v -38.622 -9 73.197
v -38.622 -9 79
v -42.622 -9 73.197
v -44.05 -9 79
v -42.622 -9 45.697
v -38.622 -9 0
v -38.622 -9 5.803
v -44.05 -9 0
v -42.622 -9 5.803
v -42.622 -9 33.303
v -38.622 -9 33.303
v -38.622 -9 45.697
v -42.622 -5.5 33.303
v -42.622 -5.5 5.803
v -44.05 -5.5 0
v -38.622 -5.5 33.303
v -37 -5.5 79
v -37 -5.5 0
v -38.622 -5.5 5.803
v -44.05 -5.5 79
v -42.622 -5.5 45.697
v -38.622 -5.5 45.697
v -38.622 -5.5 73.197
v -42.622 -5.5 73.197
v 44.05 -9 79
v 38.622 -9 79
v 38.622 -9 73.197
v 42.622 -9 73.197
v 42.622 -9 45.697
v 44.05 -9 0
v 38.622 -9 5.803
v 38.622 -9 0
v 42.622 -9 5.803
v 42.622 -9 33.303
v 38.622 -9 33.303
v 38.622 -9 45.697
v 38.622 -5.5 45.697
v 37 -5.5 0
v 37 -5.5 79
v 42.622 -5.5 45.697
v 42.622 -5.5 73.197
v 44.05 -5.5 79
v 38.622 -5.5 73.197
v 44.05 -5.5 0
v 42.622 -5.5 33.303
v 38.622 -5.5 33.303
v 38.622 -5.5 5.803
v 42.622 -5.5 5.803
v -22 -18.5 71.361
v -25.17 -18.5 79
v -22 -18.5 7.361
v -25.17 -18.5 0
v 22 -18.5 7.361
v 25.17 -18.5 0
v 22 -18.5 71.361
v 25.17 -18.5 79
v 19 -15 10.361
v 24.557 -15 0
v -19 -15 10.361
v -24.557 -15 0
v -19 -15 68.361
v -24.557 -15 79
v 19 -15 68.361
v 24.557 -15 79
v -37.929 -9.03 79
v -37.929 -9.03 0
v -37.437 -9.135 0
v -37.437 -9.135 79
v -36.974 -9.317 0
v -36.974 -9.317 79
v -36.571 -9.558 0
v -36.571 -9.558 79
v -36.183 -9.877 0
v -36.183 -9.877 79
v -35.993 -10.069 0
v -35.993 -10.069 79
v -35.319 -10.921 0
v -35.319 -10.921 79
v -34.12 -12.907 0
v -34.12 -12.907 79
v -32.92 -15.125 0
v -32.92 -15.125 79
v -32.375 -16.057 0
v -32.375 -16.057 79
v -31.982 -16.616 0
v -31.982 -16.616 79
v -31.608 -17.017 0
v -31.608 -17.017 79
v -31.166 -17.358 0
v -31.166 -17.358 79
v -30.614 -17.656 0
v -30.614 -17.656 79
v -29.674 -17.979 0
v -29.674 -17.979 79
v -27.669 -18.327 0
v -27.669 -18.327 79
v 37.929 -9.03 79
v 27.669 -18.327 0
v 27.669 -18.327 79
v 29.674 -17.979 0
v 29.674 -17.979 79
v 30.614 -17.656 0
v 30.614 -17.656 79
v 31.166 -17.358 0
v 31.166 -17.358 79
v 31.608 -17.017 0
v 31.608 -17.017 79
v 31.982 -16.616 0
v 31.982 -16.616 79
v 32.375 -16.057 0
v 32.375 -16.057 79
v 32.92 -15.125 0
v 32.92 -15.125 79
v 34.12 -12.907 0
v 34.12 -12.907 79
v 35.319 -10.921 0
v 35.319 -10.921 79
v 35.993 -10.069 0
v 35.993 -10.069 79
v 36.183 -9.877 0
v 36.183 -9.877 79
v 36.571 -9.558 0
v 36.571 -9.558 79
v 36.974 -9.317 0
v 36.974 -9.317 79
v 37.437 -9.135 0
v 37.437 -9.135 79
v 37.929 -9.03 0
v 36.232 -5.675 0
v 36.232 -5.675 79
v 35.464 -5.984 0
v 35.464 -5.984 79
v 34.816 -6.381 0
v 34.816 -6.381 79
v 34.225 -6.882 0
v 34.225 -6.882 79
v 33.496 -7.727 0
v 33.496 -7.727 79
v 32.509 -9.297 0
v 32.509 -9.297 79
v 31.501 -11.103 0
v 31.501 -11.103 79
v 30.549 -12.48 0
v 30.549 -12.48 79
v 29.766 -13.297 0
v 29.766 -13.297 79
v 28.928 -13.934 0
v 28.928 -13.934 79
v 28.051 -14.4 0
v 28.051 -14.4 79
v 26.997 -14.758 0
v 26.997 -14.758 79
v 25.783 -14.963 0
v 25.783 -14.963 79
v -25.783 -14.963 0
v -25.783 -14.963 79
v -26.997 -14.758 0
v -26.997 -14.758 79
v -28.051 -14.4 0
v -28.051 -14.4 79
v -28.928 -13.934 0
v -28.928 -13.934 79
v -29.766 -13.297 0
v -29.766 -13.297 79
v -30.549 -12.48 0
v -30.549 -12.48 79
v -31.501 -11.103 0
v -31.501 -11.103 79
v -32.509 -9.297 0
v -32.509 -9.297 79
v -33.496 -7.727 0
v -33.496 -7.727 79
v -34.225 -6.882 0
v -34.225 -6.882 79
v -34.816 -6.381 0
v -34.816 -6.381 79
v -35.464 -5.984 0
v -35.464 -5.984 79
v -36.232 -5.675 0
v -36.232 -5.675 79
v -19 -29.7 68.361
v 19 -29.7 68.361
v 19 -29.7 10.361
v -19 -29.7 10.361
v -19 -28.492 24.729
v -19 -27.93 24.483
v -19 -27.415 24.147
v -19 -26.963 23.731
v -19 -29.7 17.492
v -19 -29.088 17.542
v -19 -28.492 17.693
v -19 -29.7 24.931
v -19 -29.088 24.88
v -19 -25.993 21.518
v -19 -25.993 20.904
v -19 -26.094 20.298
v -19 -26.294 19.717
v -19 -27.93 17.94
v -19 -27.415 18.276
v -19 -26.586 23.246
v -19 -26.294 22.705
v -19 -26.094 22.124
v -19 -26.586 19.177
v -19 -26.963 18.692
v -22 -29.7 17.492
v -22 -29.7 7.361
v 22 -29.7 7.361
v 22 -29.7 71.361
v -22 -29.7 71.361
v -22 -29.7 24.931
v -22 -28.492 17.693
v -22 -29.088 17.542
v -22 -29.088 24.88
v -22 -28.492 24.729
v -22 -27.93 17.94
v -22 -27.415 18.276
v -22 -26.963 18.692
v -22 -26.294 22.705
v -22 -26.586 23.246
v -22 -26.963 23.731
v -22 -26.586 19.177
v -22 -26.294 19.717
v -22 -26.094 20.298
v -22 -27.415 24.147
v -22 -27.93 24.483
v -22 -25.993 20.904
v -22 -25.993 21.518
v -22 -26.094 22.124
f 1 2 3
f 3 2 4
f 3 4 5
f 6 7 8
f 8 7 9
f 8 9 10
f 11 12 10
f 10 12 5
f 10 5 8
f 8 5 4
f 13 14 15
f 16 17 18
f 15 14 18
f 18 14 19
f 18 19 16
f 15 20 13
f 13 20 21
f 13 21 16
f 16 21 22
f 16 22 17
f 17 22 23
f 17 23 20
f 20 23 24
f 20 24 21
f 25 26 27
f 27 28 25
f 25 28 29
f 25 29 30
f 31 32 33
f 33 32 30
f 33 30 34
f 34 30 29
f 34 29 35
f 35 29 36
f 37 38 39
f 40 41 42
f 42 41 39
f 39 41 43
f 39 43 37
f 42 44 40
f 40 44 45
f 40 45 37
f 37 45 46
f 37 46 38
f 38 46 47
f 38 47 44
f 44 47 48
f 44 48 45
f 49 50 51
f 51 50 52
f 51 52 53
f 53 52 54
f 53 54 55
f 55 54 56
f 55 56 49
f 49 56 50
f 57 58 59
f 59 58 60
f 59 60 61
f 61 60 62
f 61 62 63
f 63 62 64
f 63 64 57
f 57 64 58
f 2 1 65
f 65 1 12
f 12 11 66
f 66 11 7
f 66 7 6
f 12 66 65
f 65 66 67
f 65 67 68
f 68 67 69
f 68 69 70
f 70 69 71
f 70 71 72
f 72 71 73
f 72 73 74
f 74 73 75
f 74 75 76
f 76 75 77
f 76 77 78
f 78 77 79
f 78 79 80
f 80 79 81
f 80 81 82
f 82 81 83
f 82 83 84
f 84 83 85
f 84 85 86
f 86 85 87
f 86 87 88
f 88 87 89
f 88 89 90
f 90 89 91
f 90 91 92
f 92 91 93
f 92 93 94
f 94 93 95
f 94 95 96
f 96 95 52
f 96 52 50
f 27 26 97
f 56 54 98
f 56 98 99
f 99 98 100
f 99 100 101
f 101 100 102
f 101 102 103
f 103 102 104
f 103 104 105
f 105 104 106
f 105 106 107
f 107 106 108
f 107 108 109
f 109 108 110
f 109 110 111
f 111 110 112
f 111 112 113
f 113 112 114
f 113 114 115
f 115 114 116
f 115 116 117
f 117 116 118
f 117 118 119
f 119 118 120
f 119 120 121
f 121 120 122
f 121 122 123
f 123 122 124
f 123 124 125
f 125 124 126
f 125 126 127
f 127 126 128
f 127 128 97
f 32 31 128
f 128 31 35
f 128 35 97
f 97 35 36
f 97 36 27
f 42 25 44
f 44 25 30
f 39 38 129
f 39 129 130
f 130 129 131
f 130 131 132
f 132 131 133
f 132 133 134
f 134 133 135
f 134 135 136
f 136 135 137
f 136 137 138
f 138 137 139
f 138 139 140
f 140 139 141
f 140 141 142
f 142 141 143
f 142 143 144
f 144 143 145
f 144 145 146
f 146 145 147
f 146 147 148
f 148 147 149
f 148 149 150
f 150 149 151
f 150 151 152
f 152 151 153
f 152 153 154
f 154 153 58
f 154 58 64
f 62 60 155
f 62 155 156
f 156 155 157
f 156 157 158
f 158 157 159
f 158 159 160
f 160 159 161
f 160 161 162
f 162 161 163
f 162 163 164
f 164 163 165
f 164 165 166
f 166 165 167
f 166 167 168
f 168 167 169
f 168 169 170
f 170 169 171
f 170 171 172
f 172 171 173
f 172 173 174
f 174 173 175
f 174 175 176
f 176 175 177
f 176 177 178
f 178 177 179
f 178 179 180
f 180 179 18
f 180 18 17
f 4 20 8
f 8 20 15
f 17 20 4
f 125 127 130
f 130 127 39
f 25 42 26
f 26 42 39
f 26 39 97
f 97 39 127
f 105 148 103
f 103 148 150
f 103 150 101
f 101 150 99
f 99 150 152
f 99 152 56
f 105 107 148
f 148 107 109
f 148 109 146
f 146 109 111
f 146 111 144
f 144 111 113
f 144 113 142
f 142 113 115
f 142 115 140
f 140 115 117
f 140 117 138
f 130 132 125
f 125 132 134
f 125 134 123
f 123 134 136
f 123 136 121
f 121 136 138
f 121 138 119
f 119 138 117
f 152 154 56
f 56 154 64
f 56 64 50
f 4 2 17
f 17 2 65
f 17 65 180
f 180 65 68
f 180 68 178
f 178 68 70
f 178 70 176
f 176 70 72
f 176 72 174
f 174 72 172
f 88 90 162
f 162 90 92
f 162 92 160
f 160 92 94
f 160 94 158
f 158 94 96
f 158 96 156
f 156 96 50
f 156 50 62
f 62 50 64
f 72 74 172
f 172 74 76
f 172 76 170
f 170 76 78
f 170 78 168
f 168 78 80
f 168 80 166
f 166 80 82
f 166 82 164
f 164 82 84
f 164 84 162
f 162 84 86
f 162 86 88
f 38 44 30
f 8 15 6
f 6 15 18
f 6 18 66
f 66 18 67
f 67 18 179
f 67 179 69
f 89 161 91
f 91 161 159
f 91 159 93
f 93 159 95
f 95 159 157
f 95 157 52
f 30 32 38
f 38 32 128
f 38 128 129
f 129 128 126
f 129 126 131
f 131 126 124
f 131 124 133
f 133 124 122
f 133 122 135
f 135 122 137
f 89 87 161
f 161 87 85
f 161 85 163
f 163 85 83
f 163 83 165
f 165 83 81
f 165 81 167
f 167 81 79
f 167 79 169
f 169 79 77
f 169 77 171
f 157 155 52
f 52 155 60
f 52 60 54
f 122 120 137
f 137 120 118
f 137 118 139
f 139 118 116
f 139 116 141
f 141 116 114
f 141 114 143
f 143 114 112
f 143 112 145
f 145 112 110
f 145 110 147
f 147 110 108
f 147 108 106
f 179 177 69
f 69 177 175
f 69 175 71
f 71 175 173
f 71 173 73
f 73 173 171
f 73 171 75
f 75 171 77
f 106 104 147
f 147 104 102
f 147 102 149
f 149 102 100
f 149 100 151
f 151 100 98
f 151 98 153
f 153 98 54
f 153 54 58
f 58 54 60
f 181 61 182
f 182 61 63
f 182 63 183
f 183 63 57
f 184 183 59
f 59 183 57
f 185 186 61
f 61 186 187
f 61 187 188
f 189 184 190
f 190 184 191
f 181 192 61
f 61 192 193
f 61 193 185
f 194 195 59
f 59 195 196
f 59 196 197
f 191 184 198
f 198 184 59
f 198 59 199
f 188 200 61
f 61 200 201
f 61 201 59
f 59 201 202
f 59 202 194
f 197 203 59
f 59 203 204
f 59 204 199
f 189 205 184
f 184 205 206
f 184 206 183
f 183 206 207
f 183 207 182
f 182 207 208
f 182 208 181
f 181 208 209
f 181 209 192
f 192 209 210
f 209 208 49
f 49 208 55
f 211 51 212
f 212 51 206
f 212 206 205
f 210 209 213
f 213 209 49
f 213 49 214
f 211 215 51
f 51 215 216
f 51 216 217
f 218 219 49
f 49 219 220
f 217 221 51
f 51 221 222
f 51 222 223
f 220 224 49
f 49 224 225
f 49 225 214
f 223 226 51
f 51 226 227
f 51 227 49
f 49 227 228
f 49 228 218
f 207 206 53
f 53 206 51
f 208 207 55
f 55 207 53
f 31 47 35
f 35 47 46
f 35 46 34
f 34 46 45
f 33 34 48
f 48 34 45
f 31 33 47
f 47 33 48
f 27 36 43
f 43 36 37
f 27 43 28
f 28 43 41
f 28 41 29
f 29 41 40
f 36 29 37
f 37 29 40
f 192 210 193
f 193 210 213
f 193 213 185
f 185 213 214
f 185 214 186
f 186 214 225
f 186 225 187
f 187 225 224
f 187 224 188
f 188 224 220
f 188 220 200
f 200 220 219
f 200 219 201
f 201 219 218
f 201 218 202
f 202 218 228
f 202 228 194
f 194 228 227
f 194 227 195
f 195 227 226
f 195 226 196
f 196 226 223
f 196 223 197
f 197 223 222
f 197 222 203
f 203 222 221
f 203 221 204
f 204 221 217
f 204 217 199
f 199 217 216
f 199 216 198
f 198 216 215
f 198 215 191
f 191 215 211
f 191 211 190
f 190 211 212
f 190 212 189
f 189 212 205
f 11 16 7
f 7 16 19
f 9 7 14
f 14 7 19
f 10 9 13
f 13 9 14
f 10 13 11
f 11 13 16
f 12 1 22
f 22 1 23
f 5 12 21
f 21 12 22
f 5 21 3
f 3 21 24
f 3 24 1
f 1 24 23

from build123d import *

# Parameters (mm, degrees)
BOSS_EXTRUDE1_DEPTH = 79
SKETCH2_W           = 38
SKETCH2_H           = 58
CUT_EXTRUDE1_DEPTH  = 79
SKETCH2_4_W         = 44
SKETCH2_4_H         = 64
SKETCH2_4_W_2       = 38
SKETCH2_4_H_2       = 58
BOSS_EXTRUDE2_DEPTH = 11.2
SKETCH3_W           = 4
SKETCH3_H           = 27.5
CUT_EXTRUDE2_DEPTH  = 11.2
SKETCH4_R           = 3.719736595
CUT_EXTRUDE3_DEPTH  = 11.2


with BuildPart() as part:
    # Sketch1 → Boss-Extrude1 (new body)
    with BuildSketch(Plane.XY):
        with BuildLine():
            add(Edge.make_bspline(
                [(-24.556789143, -15), (-27.745261791, -15.088777555), (-32.116523574, -12.134311448), (-33.438353398, -6.048030585), (-37, -5.5)],
                knots=[0.971548373, 0.971548373, 0.971548373, 0.971548373, 1.403552773, 1.971548373, 1.971548373, 1.971548373, 1.971548373], degree=3))
            Line((-37, -5.5), (-44.050427966, -5.5))
            Line((-44.050427966, -5.5), (-44.050427966, -9))
            Line((-44.050427966, -9), (-38.622212975, -9))
            add(Edge.make_bspline(
                [(-38.622212975, -9), (-37.013577383, -8.940166603), (-35.066707272, -10.728314314), (-32.367433587, -16.596409153), (-30.698617033, -18.287184956), (-25.17005526, -18.5)],
                knots=[0, 0, 0, 0, 0.269469322, 0.622038388, 1, 1, 1, 1], degree=3))
            Line((-25.17005526, -18.5), (25.17005526, -18.5))
            add(Edge.make_bspline(
                [(38.622212975, -9), (37.013577383, -8.940166603), (35.066707272, -10.728314314), (32.367433587, -16.596409153), (30.698617033, -18.287184956), (25.17005526, -18.5)],
                knots=[0, 0, 0, 0, 0.269469322, 0.622038388, 1, 1, 1, 1], degree=3))
            Line((38.622212975, -9), (44.050427966, -9))
            Line((44.050427966, -9), (44.050427966, -5.5))
            Line((44.050427966, -5.5), (37, -5.5))
            add(Edge.make_bspline(
                [(37, -5.5), (33.438353398, -6.048030585), (32.116523574, -12.134311448), (27.745261791, -15.088777555), (24.556789143, -15)],
                knots=[0, 0, 0, 0, 0.5679956, 1, 1, 1, 1], degree=3))
            Line((24.556789143, -15), (-24.556789143, -15))
        make_face()
    extrude(amount=BOSS_EXTRUDE1_DEPTH)

    # Sketch2 → Cut-Extrude1 (cut)
    with BuildSketch(Plane.XZ.offset(18.5)):
        with Locations((0, 39.360513879)):
            Rectangle(SKETCH2_W, SKETCH2_H)
    extrude(amount=-CUT_EXTRUDE1_DEPTH, mode=Mode.SUBTRACT)

    # Sketch2<4> → Boss-Extrude2 (add)
    with BuildSketch(Plane.XZ.offset(18.5)):
        with Locations((0, 39.360513879)):
            Rectangle(SKETCH2_4_W, SKETCH2_4_H)
        with Locations((0, 39.360513879)):
            Rectangle(SKETCH2_4_W_2, SKETCH2_4_H_2, mode=Mode.SUBTRACT)
    extrude(amount=BOSS_EXTRUDE2_DEPTH)

    # Sketch3 → Cut-Extrude2 (cut)
    with BuildSketch(Plane.XZ.offset(9)):
        with Locations((40.622212975, 59.446790211)):
            Rectangle(SKETCH3_W, SKETCH3_H)
        with Locations((40.622212975, 19.553209789)):
            Rectangle(SKETCH3_W, SKETCH3_H)
    cut_extrude2 = extrude(amount=-CUT_EXTRUDE2_DEPTH, mode=Mode.SUBTRACT)

    # Sketch4 → Cut-Extrude3 (cut)
    with BuildSketch(Plane.ZY.offset(22)):
        with Locations((21.211295074, -29.7)):
            Circle(SKETCH4_R)
    extrude(amount=-CUT_EXTRUDE3_DEPTH, mode=Mode.SUBTRACT)

    # Mirror1: Cut-Extrude2 across plane
    add(cut_extrude2.mirror(Plane(origin=(0, 0, 0), x_dir=(0, 0, 1), z_dir=(1, 0, 0))), mode=Mode.SUBTRACT)


solid = part.part
